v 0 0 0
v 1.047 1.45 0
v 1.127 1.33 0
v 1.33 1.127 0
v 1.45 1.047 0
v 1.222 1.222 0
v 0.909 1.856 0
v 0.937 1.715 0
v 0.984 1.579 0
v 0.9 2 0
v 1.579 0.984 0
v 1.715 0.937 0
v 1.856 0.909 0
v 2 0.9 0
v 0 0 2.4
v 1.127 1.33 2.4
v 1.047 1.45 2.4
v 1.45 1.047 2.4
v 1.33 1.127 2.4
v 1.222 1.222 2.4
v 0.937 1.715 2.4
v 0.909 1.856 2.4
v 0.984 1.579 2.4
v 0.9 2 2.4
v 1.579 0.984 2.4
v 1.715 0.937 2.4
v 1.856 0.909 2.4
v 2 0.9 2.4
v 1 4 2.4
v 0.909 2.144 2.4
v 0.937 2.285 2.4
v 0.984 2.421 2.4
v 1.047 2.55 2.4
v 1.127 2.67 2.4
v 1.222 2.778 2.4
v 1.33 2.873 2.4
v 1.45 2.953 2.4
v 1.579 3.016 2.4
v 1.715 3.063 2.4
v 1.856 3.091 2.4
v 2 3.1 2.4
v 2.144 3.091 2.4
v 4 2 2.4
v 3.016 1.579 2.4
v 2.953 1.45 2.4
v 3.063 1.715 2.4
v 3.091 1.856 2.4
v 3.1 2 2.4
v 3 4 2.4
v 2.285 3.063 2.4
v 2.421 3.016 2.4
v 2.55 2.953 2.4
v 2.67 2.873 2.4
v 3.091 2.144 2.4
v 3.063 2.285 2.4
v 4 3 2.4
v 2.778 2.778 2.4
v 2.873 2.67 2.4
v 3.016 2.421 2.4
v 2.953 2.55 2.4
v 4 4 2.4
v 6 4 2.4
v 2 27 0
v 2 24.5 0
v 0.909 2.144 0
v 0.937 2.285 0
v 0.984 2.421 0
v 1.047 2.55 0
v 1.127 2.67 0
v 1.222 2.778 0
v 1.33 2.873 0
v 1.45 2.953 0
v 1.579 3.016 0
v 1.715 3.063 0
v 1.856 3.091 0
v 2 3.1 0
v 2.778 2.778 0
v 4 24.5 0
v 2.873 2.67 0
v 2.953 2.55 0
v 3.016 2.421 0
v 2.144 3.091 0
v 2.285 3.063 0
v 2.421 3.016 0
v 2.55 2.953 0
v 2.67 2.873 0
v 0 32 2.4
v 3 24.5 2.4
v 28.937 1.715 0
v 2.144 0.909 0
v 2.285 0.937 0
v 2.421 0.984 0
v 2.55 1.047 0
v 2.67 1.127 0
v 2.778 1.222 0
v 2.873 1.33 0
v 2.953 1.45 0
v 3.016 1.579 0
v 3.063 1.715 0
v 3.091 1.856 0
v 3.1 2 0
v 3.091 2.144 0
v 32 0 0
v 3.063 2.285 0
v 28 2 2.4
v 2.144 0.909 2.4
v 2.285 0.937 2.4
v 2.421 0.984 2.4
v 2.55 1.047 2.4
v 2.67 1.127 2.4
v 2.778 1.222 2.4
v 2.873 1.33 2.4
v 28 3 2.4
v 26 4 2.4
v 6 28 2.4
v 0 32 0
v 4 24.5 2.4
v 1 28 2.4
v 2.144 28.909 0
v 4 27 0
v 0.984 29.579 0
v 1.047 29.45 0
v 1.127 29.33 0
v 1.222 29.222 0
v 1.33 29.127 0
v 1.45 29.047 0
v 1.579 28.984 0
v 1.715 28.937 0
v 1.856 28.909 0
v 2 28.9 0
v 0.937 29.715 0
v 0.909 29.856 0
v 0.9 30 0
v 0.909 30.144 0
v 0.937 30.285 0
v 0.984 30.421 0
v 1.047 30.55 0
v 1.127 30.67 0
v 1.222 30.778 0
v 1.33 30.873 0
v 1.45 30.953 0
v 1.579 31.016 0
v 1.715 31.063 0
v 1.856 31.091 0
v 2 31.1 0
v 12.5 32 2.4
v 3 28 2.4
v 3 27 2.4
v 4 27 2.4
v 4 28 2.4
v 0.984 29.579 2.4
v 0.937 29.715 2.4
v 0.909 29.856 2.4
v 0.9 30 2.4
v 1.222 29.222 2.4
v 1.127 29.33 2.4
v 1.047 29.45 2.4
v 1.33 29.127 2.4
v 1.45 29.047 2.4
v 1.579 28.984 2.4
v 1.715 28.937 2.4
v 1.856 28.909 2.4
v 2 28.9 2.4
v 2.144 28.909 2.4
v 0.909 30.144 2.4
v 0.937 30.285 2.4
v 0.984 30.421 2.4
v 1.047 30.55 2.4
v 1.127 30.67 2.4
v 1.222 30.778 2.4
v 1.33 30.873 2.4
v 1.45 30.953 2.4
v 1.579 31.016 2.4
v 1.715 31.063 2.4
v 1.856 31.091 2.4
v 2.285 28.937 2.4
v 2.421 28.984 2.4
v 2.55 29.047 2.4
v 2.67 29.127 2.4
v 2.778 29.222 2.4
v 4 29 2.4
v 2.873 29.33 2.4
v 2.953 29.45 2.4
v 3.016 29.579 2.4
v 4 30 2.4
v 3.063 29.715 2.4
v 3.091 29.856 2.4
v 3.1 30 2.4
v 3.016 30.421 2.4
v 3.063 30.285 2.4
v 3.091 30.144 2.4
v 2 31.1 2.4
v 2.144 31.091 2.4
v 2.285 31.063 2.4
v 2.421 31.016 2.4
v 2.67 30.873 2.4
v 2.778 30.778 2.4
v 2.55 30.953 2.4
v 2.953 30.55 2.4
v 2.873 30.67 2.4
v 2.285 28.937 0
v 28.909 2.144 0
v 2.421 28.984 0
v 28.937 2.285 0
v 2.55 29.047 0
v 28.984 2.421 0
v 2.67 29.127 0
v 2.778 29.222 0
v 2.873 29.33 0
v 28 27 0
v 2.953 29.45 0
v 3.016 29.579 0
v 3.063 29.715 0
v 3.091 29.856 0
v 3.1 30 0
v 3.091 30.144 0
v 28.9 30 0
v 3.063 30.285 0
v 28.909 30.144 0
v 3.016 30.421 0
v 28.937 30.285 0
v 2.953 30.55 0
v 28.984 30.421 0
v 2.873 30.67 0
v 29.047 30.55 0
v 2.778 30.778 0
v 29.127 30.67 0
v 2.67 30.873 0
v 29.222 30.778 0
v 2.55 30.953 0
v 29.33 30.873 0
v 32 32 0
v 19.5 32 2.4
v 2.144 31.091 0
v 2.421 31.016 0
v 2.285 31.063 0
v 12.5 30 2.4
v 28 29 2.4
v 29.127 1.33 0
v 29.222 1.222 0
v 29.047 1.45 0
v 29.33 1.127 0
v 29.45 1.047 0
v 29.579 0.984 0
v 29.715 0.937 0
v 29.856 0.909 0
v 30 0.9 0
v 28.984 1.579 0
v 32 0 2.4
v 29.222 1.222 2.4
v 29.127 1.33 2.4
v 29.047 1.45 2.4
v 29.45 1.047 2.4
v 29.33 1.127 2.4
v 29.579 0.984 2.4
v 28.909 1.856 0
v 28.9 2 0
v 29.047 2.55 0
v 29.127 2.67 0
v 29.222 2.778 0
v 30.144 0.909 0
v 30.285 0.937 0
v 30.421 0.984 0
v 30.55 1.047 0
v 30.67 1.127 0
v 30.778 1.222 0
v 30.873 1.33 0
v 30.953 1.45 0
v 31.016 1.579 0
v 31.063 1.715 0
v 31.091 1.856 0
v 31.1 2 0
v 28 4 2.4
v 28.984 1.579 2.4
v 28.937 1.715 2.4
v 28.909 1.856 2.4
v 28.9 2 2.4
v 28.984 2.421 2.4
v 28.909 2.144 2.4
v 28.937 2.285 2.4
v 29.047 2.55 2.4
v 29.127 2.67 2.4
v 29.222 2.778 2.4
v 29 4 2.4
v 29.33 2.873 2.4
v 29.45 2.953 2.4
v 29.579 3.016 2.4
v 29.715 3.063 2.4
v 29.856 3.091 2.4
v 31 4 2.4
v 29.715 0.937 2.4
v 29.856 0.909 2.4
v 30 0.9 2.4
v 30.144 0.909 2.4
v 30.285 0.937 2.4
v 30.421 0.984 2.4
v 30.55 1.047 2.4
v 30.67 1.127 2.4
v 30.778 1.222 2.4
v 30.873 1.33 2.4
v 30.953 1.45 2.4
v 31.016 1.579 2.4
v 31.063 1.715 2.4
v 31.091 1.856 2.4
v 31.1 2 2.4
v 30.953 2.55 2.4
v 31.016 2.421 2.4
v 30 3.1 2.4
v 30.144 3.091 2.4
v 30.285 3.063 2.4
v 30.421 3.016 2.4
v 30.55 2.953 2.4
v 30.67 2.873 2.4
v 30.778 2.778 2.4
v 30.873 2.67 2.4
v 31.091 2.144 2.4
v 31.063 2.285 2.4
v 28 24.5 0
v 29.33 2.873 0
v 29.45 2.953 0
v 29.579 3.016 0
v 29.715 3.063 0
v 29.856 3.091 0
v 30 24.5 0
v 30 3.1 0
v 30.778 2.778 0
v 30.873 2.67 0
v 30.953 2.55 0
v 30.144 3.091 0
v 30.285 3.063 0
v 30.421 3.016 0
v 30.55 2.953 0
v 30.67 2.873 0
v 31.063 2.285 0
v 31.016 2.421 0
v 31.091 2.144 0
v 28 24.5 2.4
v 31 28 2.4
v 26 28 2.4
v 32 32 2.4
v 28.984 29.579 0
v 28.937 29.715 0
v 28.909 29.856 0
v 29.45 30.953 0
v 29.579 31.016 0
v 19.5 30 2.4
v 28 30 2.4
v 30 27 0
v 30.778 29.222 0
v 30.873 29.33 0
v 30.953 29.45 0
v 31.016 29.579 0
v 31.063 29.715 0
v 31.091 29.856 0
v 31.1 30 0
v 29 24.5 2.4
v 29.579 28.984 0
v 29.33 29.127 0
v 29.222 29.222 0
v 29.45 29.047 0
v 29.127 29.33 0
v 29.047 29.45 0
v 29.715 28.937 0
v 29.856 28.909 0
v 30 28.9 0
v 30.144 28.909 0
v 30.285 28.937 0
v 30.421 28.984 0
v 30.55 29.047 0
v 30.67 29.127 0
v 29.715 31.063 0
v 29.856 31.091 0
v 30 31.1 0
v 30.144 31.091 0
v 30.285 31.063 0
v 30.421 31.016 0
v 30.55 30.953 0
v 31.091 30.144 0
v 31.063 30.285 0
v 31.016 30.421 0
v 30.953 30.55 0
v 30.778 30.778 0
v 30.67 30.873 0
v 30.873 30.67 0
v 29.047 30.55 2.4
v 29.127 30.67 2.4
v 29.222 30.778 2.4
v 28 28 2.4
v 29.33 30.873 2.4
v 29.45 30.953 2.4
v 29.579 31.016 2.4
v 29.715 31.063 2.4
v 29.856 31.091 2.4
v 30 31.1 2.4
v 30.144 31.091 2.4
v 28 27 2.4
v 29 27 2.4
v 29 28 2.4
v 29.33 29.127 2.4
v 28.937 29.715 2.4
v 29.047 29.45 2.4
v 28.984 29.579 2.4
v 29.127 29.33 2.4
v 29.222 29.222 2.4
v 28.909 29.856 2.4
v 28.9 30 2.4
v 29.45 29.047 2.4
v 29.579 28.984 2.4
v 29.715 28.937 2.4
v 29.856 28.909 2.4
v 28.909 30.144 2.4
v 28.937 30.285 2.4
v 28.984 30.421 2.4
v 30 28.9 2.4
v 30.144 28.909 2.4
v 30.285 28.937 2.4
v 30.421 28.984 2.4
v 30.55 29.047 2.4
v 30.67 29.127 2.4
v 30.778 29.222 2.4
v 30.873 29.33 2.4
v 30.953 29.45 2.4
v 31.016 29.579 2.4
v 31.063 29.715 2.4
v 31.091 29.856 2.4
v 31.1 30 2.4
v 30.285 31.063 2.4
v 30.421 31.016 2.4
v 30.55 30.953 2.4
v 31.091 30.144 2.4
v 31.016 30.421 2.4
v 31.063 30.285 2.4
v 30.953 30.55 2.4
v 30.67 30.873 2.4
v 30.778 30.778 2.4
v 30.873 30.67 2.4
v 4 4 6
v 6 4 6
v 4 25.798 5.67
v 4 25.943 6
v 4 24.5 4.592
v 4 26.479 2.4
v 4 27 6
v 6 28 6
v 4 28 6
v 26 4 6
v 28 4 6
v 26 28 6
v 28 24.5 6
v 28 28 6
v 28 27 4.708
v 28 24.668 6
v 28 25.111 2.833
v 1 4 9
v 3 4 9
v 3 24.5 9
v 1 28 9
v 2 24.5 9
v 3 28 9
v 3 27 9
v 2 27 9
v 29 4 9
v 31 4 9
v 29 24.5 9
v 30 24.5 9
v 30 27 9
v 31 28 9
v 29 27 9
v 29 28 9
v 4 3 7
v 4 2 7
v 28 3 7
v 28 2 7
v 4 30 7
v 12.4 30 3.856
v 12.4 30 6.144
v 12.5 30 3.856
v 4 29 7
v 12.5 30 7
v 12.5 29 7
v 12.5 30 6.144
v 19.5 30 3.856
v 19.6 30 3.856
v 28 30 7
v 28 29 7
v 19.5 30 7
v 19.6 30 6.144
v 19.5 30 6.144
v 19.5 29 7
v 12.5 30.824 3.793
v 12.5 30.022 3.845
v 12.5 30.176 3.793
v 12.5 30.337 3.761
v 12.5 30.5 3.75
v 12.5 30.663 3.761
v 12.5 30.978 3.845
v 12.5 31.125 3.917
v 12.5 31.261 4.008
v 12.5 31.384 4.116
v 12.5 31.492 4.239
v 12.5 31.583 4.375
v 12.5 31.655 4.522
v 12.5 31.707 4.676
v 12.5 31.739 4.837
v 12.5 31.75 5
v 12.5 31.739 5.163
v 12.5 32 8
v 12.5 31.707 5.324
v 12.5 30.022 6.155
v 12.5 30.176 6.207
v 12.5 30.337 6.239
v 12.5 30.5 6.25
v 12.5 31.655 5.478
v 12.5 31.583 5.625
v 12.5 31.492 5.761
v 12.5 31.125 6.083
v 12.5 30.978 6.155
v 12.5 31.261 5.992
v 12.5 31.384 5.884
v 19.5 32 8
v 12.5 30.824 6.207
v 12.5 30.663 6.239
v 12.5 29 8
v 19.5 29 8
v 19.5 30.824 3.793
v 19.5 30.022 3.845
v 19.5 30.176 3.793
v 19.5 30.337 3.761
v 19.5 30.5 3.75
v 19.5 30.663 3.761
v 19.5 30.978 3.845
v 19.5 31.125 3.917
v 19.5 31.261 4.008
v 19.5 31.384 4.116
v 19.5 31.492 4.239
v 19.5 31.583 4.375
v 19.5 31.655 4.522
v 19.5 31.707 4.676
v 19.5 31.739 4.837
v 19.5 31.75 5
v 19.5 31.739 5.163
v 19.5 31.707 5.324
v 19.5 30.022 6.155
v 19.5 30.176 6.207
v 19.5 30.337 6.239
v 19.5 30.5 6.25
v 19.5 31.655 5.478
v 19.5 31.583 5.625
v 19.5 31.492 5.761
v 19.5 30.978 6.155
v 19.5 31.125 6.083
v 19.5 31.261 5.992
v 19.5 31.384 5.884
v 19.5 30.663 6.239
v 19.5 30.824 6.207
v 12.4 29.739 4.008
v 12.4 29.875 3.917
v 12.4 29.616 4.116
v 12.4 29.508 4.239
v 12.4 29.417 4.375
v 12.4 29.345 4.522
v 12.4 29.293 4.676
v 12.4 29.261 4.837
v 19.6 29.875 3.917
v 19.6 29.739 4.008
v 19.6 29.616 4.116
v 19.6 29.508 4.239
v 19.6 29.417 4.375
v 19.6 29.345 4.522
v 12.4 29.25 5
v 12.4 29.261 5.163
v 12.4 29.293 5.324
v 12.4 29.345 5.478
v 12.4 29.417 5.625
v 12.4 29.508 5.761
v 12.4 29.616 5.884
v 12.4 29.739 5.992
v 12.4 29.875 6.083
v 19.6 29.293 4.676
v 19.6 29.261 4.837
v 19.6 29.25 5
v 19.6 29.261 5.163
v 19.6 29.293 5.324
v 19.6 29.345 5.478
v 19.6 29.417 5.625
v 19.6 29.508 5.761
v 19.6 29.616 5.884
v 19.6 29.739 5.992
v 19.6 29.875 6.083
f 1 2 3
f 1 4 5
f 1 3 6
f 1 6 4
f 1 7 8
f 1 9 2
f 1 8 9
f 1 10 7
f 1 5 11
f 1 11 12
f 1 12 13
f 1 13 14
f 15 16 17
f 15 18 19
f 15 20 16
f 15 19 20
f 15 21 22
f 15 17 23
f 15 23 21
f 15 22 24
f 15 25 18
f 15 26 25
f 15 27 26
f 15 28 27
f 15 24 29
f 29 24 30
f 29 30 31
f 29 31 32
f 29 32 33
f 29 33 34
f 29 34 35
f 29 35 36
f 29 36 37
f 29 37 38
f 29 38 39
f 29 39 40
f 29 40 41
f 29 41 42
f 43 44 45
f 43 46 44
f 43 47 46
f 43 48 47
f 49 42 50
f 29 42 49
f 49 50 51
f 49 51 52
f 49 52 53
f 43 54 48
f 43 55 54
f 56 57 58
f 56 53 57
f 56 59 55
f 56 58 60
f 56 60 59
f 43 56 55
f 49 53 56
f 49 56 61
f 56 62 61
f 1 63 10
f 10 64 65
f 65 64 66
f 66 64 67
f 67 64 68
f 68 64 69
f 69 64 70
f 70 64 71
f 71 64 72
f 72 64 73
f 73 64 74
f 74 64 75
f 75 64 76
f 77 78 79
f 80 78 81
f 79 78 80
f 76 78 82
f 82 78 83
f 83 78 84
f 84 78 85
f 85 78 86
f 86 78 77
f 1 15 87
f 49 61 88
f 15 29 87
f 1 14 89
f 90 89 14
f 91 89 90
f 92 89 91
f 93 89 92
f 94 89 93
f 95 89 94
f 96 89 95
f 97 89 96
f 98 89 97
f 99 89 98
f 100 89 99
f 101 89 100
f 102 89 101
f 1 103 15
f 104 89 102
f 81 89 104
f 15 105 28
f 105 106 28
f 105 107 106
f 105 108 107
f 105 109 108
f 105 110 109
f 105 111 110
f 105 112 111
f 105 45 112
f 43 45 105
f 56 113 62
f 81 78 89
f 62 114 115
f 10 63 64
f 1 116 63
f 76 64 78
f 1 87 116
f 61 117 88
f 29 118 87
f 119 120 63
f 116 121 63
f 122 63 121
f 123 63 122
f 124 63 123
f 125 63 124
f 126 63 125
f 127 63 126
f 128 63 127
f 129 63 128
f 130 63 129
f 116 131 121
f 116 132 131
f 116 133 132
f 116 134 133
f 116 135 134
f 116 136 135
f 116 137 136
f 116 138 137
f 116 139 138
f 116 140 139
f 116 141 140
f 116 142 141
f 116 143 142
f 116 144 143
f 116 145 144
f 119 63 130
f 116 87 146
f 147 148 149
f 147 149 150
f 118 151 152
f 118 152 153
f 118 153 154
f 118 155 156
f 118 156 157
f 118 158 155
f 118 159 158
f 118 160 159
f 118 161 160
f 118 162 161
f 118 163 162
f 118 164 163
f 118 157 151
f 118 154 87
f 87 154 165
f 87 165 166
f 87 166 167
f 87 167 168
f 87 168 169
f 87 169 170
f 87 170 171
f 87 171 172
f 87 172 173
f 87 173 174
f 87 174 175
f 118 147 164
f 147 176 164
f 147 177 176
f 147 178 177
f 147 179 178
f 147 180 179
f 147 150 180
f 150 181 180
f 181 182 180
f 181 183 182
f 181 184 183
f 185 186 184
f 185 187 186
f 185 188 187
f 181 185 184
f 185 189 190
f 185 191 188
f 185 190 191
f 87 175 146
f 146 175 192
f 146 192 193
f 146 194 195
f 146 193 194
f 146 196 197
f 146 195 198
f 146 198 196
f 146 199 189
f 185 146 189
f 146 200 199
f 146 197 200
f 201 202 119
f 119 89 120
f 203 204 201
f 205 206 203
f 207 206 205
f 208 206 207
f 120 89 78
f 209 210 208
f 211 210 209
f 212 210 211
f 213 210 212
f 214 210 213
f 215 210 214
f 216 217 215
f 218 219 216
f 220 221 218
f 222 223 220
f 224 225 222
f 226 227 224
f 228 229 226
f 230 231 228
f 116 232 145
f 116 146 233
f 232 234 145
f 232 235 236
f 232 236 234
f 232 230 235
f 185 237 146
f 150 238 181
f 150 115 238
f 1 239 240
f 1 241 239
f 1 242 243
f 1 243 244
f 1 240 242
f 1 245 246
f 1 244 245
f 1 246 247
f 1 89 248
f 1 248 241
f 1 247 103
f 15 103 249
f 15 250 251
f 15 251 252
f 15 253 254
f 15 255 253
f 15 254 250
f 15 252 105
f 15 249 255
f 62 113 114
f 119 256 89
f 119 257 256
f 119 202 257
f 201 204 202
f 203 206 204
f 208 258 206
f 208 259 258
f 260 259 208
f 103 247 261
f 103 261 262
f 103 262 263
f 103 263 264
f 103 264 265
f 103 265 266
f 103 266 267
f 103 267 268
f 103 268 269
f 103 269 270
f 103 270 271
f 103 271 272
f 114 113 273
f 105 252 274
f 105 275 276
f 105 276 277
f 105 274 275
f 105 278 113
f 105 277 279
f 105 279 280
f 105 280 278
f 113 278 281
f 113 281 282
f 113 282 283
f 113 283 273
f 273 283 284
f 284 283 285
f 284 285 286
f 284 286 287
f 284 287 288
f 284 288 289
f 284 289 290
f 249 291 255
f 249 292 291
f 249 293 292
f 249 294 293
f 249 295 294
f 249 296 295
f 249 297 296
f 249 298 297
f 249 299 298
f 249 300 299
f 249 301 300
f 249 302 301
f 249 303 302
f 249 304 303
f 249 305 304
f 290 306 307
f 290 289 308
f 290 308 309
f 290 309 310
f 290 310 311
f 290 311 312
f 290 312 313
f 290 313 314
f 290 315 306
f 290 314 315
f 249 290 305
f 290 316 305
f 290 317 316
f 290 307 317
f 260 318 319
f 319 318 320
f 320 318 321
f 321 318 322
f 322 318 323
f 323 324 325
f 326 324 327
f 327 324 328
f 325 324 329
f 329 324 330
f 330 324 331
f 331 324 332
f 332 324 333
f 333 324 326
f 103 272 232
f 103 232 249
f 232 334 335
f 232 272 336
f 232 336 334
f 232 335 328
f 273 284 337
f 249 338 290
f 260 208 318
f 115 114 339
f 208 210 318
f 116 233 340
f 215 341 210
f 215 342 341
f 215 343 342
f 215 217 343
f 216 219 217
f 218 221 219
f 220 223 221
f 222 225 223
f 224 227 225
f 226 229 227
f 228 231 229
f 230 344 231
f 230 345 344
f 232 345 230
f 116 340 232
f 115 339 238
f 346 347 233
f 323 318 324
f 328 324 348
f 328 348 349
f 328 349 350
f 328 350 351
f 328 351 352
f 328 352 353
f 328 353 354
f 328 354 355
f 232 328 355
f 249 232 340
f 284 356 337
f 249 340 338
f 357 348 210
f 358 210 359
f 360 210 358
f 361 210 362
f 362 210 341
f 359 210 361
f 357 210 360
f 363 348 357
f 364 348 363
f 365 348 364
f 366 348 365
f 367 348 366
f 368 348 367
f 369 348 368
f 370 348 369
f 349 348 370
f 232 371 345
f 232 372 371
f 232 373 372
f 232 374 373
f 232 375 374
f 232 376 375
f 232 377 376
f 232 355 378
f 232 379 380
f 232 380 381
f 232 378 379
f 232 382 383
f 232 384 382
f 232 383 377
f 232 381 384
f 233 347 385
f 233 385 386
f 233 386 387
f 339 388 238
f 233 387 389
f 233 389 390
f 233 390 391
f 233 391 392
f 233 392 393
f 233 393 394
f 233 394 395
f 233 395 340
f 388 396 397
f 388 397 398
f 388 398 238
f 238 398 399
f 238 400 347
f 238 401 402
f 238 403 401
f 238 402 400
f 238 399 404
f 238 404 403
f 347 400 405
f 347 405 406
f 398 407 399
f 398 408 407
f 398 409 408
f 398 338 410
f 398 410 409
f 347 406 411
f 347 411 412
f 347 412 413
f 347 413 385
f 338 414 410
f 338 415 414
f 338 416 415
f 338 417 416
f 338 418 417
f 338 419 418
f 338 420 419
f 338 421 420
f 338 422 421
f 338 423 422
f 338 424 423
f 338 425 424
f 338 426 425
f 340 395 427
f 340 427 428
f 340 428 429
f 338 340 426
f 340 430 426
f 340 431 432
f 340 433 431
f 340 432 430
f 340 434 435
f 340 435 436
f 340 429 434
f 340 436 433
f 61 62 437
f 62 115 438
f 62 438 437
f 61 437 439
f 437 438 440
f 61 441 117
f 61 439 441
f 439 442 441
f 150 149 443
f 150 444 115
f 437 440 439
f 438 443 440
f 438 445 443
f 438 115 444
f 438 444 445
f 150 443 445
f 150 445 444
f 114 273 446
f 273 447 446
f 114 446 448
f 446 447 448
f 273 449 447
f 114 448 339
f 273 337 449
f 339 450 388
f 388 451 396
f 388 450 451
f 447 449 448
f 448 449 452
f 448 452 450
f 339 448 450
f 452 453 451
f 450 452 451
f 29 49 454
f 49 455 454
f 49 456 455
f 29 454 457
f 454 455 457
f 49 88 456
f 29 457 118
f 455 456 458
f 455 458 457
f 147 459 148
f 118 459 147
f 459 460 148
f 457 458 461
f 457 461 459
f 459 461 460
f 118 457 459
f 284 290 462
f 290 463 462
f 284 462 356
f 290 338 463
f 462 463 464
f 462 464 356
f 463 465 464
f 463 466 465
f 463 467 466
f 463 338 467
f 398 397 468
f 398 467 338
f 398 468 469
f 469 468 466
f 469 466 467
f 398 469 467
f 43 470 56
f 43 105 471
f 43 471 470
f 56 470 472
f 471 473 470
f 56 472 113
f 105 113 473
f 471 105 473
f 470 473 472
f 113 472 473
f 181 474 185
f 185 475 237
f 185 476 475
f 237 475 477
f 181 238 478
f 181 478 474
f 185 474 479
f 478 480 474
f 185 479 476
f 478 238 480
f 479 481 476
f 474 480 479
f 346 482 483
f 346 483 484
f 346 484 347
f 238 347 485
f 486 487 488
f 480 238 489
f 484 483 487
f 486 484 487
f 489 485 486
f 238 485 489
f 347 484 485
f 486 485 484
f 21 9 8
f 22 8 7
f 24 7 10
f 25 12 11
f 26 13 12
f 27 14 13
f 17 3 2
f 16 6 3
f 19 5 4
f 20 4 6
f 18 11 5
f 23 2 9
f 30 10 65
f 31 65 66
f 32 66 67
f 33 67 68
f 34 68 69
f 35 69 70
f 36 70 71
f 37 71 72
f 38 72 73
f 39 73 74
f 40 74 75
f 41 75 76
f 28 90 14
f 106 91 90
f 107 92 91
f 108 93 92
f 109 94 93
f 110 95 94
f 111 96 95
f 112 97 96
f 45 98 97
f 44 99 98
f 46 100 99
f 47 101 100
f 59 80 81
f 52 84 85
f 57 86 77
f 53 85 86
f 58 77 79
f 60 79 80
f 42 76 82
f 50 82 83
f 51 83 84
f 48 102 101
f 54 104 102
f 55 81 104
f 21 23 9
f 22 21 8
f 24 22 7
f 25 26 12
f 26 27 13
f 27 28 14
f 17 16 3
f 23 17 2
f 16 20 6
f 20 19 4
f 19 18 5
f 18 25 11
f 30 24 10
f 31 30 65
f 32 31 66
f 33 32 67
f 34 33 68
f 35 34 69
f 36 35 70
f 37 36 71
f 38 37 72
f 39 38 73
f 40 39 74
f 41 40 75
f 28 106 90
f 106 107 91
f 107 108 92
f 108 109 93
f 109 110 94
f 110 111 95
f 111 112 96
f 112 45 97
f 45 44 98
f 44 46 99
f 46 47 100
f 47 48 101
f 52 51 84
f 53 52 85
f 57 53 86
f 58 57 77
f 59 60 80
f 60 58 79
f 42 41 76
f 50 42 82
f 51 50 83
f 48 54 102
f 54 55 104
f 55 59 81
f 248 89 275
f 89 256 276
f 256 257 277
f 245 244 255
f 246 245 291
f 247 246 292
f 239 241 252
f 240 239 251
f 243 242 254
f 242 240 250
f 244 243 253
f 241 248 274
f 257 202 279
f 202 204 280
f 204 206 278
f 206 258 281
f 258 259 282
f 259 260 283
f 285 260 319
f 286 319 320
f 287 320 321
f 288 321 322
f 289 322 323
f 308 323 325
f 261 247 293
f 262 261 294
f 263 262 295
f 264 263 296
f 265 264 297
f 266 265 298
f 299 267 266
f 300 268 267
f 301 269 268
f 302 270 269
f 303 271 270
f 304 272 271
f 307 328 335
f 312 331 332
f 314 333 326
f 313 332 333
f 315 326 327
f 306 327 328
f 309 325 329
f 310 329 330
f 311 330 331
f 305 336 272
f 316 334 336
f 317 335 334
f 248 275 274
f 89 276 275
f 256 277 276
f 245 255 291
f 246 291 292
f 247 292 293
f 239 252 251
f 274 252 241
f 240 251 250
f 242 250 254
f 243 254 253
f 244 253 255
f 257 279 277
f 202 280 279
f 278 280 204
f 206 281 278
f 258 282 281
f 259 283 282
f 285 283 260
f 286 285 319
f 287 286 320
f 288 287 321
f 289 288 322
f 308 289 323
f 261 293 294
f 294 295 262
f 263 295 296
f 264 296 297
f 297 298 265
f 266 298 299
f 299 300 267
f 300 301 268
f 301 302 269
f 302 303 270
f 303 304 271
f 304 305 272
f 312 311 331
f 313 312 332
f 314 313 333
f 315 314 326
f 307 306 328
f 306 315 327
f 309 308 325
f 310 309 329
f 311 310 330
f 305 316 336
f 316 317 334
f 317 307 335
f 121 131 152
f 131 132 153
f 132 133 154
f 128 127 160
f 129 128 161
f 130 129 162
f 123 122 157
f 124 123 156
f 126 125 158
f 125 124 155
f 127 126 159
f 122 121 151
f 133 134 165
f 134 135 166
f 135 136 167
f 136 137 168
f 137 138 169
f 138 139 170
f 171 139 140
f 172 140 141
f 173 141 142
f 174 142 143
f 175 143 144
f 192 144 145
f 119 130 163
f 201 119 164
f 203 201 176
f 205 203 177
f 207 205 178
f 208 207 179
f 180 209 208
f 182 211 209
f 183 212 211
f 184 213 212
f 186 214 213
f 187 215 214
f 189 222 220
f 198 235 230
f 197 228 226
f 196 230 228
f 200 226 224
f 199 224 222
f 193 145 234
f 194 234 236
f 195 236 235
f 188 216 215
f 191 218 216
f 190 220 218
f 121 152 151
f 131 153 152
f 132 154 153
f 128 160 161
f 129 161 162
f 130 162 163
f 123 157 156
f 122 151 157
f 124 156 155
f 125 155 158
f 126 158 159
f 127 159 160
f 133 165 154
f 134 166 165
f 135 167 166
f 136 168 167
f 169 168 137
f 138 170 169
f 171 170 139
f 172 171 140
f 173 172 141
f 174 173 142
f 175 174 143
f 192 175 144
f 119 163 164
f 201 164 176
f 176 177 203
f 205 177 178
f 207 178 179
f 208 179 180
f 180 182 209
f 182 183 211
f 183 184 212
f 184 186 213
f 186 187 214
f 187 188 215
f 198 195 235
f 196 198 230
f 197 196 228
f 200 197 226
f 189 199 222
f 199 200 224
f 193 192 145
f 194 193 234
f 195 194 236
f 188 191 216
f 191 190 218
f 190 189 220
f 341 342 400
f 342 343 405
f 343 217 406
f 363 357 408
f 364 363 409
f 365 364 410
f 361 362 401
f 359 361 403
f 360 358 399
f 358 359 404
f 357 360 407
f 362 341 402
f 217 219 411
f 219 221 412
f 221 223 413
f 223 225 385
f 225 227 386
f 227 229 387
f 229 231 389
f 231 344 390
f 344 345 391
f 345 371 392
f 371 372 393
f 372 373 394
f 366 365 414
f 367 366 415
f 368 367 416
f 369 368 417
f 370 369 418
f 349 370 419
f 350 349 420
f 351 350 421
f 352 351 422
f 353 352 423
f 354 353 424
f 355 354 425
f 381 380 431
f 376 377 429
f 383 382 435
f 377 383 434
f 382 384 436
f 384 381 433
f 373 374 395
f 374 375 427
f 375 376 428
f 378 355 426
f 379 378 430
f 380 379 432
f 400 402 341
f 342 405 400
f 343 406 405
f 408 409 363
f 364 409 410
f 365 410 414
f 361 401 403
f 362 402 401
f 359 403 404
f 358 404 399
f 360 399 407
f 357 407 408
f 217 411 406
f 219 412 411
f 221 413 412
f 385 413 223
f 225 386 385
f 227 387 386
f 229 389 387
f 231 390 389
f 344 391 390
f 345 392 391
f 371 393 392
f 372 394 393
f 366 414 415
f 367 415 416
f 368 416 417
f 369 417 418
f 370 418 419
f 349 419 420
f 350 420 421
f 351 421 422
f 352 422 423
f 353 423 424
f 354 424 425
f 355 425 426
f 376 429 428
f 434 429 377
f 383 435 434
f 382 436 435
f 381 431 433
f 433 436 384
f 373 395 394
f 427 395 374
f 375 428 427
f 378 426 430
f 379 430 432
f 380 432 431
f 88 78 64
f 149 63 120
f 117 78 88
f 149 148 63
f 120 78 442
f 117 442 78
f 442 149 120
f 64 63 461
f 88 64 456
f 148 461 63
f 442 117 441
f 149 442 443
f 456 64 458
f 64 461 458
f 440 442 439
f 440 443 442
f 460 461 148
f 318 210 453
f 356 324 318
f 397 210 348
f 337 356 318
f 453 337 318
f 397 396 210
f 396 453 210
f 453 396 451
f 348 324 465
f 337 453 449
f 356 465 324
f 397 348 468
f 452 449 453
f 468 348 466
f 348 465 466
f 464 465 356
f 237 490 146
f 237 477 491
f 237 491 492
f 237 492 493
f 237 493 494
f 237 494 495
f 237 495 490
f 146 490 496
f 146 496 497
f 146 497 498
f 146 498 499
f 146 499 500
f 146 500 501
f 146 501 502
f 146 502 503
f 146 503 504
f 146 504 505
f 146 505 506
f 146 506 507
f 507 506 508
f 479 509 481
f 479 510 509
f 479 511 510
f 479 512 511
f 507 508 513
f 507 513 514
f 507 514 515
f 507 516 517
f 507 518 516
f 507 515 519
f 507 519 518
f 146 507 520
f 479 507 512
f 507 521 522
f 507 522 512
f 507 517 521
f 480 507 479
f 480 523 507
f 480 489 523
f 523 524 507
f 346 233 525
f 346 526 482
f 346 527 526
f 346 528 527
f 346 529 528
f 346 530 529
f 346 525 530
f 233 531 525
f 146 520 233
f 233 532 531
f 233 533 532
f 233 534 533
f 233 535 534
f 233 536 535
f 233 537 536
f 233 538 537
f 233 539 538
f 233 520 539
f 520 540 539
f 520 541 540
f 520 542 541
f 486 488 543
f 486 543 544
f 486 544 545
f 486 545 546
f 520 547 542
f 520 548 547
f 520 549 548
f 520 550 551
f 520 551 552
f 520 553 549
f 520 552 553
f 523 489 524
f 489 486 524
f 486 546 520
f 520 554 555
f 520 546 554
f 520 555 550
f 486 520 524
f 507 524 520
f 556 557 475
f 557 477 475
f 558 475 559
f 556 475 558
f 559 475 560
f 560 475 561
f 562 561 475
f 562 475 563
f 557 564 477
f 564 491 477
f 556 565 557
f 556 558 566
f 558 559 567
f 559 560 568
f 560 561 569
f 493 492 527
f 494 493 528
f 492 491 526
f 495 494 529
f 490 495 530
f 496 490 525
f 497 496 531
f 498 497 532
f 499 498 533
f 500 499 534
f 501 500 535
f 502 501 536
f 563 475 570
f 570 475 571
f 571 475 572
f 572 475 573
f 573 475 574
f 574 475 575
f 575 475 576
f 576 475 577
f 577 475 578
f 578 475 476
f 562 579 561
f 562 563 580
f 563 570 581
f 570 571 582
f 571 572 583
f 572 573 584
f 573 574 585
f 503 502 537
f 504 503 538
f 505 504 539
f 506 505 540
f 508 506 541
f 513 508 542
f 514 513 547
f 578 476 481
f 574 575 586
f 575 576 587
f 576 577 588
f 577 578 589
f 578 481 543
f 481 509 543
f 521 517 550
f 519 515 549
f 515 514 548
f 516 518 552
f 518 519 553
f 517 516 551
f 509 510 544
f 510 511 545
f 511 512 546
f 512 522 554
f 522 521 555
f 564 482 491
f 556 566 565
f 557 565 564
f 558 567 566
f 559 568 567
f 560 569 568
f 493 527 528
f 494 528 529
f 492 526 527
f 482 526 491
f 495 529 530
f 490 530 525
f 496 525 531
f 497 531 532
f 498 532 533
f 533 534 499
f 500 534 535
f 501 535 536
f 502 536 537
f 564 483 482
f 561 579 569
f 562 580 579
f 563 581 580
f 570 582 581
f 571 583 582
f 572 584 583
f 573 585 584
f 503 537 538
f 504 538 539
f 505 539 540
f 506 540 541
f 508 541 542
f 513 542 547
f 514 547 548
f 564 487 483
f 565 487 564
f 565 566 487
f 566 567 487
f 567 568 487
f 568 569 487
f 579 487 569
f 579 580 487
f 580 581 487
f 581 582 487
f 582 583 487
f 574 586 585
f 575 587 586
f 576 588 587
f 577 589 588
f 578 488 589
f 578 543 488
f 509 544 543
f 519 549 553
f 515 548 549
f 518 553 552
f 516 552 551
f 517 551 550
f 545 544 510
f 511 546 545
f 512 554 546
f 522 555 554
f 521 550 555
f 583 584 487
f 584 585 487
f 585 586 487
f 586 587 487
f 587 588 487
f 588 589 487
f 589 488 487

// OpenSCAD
// Generated FH1 print part; mm. See parameters.json and physical-fit limits.
difference() {
union() {
union() {
cube([32,32,2.4]);
translate([4, 4, 0]) { cube([2,24,6]); }
translate([26, 4, 0]) { cube([2,24,6]); }
translate([1, 4, 0]) { cube([2,24,9]); }
translate([29, 4, 0]) { cube([2,24,9]); }
translate([4, 2, 0]) { cube([24,1,7]); }
translate([4, 29, 0]) { cube([24,1,7]); }
}
translate([12.5, 29, 0]) { cube([7,3,8]); }
}
translate([2, 2, -0.1]) { cylinder(d=2.2,h=2.6,$fn=48); }
translate([30, 2, -0.1]) { cylinder(d=2.2,h=2.6,$fn=48); }
translate([2, 30, -0.1]) { cylinder(d=2.2,h=2.6,$fn=48); }
translate([30, 30, -0.1]) { cylinder(d=2.2,h=2.6,$fn=48); }
translate([2, 24.5, -0.1]) { cube([2,2.5,12]); }
translate([28, 24.5, -0.1]) { cube([2,2.5,12]); }
translate([12.4, 30.5, 5]) { rotate([0, 90, 0]) { cylinder(d=2.5,h=7.2,$fn=48); } }
}
